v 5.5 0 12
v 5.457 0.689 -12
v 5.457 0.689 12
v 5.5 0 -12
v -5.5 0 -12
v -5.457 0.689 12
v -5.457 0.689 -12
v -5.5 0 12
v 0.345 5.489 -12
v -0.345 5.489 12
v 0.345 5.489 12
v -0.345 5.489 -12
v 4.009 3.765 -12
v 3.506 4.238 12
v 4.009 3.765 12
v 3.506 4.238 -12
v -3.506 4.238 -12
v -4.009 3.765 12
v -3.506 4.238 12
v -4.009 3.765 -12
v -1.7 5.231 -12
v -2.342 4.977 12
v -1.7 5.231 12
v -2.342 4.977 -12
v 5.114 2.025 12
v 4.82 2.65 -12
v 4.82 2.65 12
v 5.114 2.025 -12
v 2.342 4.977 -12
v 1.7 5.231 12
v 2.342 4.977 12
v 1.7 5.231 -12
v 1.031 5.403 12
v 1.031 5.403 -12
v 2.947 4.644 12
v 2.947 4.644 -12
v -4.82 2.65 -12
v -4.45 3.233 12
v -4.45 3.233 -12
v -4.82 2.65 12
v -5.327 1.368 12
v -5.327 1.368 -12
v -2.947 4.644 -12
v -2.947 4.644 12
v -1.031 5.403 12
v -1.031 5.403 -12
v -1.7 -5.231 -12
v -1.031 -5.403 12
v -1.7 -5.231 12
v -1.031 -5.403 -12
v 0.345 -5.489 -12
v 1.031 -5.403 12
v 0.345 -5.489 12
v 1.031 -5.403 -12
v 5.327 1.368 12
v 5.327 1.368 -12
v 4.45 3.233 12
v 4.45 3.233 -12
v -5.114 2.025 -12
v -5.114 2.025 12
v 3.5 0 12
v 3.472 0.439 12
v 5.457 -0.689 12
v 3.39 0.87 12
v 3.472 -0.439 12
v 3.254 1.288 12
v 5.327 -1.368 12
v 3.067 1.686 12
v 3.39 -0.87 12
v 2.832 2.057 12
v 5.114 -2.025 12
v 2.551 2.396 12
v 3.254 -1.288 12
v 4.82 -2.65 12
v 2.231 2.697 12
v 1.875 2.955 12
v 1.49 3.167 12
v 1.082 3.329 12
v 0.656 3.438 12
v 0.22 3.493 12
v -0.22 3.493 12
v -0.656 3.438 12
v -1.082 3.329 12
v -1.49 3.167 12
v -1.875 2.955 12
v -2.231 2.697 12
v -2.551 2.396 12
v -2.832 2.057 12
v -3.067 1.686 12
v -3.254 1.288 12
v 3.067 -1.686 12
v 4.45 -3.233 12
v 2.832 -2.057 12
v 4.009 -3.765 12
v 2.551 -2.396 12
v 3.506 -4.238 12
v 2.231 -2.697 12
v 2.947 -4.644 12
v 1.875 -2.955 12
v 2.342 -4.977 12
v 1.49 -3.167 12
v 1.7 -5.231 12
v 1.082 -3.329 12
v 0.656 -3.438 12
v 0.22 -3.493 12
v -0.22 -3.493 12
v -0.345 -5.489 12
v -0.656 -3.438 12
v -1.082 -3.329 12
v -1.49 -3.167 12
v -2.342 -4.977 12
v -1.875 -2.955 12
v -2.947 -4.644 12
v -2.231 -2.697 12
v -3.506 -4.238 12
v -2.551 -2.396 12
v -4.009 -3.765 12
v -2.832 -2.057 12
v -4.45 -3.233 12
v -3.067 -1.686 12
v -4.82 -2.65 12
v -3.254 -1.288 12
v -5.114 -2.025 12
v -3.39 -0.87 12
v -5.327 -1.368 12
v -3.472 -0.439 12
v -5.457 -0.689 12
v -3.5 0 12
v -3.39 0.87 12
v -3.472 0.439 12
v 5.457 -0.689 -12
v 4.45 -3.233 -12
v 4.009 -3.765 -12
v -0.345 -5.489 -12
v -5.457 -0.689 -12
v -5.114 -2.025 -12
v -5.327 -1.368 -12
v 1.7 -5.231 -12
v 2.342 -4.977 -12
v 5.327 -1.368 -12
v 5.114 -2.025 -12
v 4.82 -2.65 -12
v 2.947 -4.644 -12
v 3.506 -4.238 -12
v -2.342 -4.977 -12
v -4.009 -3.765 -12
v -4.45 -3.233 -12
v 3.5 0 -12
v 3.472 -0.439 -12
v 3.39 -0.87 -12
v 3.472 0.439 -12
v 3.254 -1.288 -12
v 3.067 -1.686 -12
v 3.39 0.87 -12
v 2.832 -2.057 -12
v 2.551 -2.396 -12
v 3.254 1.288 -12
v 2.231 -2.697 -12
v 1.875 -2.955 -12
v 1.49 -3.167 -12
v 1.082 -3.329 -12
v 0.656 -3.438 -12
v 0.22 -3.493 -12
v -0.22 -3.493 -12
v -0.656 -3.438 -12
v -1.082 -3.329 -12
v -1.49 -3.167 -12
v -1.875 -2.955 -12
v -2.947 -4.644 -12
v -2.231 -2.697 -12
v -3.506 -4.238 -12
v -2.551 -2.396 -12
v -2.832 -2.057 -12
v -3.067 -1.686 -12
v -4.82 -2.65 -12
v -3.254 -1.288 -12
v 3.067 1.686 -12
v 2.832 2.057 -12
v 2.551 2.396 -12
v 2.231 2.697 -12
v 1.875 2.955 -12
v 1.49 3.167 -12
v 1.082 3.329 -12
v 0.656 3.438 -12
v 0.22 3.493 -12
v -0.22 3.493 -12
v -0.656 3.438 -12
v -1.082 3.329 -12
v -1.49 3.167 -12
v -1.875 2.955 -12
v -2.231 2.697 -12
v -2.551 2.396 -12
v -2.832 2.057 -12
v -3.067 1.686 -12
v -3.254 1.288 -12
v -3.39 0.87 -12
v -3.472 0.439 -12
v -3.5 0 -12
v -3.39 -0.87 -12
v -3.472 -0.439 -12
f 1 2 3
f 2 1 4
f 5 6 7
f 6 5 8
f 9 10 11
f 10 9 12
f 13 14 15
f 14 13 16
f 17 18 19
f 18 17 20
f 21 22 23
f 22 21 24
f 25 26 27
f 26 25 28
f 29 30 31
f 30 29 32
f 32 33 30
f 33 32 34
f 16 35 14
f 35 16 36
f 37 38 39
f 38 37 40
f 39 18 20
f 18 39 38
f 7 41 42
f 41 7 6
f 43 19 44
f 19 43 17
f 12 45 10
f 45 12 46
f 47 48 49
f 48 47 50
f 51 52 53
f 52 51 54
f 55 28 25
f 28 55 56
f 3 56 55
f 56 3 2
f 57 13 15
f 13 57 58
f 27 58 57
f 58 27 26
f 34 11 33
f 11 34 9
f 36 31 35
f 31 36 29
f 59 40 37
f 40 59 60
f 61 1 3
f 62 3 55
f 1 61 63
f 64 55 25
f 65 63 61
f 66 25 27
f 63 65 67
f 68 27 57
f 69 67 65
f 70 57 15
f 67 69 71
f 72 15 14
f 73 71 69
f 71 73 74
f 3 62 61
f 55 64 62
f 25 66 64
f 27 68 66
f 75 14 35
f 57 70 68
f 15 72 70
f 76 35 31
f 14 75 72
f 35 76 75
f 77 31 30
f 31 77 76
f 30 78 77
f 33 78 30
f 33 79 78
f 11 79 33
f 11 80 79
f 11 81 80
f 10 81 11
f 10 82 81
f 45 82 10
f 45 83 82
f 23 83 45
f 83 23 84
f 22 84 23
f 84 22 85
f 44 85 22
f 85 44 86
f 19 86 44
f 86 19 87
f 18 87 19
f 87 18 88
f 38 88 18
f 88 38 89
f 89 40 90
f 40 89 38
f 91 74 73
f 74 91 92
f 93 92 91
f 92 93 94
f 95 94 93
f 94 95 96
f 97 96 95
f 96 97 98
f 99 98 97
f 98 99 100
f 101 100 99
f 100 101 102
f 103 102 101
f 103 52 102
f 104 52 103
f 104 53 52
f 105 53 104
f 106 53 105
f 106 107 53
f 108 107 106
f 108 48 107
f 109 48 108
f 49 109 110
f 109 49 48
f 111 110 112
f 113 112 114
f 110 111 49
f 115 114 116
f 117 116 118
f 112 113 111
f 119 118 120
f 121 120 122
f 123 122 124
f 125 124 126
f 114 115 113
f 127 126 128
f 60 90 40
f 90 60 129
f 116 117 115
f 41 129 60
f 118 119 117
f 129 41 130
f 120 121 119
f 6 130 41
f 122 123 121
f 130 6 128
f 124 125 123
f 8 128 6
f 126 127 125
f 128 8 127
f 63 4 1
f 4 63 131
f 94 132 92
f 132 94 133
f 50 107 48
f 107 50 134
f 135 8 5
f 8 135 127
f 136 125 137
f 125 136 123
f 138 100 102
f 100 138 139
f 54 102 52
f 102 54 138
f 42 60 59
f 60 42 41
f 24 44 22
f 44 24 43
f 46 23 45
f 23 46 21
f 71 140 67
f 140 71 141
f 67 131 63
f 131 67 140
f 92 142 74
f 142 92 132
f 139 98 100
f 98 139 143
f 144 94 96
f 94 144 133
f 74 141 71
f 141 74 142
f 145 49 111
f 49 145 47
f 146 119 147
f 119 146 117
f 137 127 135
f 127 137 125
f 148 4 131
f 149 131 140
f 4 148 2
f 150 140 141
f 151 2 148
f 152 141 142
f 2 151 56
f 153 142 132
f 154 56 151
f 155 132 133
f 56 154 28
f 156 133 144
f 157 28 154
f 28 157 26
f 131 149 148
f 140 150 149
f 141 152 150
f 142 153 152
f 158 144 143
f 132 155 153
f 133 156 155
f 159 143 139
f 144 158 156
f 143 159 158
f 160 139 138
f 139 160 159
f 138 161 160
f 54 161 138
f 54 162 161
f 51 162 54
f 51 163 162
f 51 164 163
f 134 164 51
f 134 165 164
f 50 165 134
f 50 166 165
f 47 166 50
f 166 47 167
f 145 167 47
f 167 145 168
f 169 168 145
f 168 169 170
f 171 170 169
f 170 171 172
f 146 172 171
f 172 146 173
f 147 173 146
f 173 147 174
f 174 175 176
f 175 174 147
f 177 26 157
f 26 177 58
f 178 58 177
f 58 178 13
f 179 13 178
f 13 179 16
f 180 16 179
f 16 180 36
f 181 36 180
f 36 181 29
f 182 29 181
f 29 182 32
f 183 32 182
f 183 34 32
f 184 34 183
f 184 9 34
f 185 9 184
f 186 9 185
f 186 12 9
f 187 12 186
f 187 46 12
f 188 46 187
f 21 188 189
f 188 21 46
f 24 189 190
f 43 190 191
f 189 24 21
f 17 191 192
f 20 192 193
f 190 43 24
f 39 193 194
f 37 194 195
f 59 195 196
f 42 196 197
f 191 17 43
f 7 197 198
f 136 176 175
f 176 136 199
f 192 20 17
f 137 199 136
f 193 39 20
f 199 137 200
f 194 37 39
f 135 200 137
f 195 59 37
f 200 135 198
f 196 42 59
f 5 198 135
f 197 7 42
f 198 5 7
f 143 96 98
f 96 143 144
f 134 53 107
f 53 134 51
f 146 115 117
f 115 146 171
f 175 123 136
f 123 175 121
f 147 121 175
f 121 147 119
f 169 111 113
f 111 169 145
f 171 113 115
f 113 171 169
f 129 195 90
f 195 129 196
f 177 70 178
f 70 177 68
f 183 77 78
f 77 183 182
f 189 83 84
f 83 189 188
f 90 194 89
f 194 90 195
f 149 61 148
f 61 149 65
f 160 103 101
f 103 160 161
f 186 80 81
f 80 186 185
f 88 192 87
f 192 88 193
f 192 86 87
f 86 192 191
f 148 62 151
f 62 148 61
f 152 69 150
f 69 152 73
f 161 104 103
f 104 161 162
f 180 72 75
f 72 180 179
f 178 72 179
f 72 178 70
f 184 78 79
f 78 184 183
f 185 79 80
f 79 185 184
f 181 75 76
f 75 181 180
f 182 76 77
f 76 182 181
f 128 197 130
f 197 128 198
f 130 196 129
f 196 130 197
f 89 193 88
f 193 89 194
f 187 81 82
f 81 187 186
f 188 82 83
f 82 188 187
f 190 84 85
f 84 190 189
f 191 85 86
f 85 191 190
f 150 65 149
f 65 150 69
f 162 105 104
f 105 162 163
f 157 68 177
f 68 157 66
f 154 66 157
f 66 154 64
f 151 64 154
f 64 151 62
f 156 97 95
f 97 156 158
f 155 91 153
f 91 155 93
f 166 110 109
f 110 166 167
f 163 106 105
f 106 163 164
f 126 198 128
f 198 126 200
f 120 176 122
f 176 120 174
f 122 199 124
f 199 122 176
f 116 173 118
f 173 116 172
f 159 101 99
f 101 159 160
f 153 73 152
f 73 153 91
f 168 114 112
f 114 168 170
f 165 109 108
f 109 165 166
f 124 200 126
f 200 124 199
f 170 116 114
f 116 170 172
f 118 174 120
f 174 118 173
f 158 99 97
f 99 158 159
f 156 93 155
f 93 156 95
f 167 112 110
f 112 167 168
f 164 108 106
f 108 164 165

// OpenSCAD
$fn = 50;


difference() {
	union() {
		translate(v = [0, 0, -12.0000000000]) {
			cylinder(h = 24, r = 5.5000000000);
		}
	}
	union() {
		translate(v = [0, 0, -100.0000000000]) {
			cylinder(h = 200, r = 3.5000000000);
		}
	}
}
